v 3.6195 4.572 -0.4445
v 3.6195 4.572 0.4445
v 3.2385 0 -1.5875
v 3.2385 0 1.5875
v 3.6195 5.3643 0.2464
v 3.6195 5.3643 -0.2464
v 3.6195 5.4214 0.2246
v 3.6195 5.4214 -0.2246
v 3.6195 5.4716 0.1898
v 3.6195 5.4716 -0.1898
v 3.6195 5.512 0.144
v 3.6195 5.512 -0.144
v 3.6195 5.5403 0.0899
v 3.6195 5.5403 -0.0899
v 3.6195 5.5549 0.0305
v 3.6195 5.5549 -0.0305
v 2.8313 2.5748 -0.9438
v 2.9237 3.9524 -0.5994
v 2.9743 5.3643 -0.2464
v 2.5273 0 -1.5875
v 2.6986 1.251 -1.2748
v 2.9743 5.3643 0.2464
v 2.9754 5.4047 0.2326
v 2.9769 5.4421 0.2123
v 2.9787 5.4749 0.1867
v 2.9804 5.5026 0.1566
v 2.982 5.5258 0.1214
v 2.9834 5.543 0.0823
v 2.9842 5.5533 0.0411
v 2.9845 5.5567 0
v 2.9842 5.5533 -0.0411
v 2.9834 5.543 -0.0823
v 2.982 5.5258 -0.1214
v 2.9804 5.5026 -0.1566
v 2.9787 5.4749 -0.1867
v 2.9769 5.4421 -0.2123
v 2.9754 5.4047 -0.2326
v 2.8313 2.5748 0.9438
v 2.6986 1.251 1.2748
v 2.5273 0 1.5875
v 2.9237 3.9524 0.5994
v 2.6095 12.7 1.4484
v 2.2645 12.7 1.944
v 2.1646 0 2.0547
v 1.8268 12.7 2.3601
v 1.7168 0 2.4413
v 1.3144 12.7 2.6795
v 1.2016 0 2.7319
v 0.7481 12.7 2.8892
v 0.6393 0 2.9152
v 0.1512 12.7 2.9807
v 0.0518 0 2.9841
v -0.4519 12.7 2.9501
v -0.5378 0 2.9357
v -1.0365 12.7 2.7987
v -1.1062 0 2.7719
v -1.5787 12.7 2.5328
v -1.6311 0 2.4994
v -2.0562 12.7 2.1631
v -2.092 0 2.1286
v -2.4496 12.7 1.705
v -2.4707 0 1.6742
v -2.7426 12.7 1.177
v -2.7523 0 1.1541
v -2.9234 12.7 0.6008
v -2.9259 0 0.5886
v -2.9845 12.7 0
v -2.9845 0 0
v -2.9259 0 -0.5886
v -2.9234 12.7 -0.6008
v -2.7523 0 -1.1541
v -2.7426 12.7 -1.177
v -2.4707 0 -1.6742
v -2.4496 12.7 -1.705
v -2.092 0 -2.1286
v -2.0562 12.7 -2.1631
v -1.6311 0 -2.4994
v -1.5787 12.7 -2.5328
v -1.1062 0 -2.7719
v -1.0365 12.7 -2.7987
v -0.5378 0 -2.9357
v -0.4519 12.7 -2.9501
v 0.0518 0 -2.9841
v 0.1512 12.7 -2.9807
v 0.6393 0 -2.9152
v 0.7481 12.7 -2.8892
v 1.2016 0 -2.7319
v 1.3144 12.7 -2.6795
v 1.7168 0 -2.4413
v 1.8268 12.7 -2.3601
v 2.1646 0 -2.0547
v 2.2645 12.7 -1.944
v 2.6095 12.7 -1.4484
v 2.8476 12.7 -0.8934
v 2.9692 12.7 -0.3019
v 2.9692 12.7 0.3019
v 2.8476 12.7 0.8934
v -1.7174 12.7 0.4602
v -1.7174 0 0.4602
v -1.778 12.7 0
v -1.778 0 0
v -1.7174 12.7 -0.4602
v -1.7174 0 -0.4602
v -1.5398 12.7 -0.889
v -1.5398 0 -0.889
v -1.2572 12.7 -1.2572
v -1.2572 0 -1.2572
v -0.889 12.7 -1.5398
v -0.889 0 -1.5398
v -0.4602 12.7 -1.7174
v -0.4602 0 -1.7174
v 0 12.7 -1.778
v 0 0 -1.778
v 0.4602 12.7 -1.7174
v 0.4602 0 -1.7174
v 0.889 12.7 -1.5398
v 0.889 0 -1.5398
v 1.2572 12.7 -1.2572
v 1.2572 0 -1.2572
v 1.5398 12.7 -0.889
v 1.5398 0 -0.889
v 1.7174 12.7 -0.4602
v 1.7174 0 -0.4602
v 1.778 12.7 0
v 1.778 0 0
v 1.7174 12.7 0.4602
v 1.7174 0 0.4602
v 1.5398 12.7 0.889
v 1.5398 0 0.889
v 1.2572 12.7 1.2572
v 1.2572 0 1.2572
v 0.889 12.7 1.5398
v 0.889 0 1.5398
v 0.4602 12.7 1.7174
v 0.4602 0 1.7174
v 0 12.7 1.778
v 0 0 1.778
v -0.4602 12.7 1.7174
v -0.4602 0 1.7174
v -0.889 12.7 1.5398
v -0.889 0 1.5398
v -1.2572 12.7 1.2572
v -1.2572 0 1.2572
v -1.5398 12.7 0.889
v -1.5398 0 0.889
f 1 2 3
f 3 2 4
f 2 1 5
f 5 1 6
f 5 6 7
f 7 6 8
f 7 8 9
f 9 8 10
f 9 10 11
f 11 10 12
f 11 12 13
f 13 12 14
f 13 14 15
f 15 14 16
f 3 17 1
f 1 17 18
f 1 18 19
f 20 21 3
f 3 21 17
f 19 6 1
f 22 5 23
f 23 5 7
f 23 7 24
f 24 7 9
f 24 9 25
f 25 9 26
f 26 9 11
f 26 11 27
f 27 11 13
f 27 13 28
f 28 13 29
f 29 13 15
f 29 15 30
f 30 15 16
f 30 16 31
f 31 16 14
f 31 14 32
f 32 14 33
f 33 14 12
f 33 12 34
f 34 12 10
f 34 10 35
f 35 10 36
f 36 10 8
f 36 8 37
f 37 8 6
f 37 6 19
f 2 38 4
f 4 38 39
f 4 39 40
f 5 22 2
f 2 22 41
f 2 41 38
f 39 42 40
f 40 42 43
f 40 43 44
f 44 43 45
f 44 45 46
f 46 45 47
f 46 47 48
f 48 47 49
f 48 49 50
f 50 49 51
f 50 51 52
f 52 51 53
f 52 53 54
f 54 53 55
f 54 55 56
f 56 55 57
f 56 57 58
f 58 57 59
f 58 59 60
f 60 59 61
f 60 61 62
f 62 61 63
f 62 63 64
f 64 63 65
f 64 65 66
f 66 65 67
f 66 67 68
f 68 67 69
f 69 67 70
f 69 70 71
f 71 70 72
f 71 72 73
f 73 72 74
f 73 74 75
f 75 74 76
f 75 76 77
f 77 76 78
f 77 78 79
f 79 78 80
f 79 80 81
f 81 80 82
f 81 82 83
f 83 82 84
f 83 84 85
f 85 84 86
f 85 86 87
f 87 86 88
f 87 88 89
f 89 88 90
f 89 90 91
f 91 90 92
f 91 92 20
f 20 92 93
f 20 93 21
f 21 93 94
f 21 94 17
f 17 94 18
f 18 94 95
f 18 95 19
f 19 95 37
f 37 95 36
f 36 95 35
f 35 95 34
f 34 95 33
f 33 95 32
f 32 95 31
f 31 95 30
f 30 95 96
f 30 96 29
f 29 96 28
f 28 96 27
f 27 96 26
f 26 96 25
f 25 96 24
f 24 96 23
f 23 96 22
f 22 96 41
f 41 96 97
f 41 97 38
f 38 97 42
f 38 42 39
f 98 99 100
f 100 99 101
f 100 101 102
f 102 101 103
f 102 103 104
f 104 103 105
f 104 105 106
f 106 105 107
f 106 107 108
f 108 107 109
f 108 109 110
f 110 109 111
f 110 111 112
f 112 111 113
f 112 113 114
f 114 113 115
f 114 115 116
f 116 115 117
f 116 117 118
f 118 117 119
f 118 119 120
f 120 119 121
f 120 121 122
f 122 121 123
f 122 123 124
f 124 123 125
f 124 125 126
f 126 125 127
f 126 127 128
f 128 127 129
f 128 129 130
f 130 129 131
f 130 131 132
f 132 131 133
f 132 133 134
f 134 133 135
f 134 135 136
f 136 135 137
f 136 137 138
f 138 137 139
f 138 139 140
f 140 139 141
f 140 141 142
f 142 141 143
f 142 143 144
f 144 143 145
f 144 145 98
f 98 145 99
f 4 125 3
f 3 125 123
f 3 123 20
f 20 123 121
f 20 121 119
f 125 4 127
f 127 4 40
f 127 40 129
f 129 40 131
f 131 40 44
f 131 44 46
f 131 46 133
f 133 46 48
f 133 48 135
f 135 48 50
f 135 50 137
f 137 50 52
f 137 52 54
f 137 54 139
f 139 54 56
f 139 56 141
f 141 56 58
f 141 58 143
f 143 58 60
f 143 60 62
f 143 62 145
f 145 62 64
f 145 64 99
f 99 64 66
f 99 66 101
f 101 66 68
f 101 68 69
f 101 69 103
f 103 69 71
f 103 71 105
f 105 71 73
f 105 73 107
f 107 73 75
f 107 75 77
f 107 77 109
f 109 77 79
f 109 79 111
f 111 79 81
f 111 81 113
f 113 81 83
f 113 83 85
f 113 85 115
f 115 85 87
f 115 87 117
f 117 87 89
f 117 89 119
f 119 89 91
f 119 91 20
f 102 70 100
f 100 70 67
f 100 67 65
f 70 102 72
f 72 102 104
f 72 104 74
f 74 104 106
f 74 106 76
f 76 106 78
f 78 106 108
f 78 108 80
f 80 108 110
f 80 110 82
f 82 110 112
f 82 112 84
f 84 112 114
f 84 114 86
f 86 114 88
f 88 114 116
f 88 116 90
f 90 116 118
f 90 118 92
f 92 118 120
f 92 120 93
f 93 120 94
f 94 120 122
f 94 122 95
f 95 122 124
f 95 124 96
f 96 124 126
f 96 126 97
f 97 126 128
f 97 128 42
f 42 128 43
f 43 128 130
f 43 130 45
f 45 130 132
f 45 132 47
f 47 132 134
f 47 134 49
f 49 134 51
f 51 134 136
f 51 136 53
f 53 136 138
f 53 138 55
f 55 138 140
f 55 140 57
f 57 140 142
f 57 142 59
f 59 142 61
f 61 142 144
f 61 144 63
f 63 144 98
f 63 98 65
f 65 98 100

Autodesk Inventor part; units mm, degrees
ref_plane "XZ Plane" through (0, 0, 0) normal (0, 1, 0) x (-1, 0, 0)
ref_plane "XY Plane" through (0, 0, 0) normal (0, 0, 1) x (1, 0, 0)
sketch "Sketch1" plane through (0, 0, 0) normal (0, 1, 0) x (-1, 0, 0)
  circle A0 centre (0, 0) radius 2.9845
  circle A1 centre (0, 0) radius 1.778
  dimension "d0" = 5.969
  dimension "d1" = 3.556
extrude "Extrusion1" add sketch "Sketch1" along normal blind 12.7
ref_plane "Work Plane1" through (2.9845, 0, 0) normal (1, 0, 0) x (0, 1, 0)
sketch "Sketch2" plane through (2.9845, 0, 0) normal (1, 0, 0) x (0, 1, 0)
  line L0 (6.35, 0) -> (0, 1.5875)
  line L1 (0, 1.5875) -> (0, -1.5875)
  line L2 (0, 2.9845) -> (0, -2.9845) projected
  line L3 (6.35, 0) -> (0, -1.5875)
  line L4 (0, -1.5875) -> (0, 0) construction
  line L5 (0, 0) -> (0, 1.5875) construction
  dimension "d4" = 3.175
  dimension "d5" = 6.35
extrude "Extrusion2" add sketch "Sketch2" along normal blind 0.635 and the other way blind 0.762
fillet "Fillet1" radius 0.254 1 edges at (3.302, 6.35, 0)
chamfer "Chamfer1" distance 4.572 distance2 0.381 1 edges at (3.6195, 0, 0) measured on face at (3.6195, 1.7881, 0.0821)
properties part number "HoleInsertsForBoltsLinkageSection" material "ABS Plastic"
